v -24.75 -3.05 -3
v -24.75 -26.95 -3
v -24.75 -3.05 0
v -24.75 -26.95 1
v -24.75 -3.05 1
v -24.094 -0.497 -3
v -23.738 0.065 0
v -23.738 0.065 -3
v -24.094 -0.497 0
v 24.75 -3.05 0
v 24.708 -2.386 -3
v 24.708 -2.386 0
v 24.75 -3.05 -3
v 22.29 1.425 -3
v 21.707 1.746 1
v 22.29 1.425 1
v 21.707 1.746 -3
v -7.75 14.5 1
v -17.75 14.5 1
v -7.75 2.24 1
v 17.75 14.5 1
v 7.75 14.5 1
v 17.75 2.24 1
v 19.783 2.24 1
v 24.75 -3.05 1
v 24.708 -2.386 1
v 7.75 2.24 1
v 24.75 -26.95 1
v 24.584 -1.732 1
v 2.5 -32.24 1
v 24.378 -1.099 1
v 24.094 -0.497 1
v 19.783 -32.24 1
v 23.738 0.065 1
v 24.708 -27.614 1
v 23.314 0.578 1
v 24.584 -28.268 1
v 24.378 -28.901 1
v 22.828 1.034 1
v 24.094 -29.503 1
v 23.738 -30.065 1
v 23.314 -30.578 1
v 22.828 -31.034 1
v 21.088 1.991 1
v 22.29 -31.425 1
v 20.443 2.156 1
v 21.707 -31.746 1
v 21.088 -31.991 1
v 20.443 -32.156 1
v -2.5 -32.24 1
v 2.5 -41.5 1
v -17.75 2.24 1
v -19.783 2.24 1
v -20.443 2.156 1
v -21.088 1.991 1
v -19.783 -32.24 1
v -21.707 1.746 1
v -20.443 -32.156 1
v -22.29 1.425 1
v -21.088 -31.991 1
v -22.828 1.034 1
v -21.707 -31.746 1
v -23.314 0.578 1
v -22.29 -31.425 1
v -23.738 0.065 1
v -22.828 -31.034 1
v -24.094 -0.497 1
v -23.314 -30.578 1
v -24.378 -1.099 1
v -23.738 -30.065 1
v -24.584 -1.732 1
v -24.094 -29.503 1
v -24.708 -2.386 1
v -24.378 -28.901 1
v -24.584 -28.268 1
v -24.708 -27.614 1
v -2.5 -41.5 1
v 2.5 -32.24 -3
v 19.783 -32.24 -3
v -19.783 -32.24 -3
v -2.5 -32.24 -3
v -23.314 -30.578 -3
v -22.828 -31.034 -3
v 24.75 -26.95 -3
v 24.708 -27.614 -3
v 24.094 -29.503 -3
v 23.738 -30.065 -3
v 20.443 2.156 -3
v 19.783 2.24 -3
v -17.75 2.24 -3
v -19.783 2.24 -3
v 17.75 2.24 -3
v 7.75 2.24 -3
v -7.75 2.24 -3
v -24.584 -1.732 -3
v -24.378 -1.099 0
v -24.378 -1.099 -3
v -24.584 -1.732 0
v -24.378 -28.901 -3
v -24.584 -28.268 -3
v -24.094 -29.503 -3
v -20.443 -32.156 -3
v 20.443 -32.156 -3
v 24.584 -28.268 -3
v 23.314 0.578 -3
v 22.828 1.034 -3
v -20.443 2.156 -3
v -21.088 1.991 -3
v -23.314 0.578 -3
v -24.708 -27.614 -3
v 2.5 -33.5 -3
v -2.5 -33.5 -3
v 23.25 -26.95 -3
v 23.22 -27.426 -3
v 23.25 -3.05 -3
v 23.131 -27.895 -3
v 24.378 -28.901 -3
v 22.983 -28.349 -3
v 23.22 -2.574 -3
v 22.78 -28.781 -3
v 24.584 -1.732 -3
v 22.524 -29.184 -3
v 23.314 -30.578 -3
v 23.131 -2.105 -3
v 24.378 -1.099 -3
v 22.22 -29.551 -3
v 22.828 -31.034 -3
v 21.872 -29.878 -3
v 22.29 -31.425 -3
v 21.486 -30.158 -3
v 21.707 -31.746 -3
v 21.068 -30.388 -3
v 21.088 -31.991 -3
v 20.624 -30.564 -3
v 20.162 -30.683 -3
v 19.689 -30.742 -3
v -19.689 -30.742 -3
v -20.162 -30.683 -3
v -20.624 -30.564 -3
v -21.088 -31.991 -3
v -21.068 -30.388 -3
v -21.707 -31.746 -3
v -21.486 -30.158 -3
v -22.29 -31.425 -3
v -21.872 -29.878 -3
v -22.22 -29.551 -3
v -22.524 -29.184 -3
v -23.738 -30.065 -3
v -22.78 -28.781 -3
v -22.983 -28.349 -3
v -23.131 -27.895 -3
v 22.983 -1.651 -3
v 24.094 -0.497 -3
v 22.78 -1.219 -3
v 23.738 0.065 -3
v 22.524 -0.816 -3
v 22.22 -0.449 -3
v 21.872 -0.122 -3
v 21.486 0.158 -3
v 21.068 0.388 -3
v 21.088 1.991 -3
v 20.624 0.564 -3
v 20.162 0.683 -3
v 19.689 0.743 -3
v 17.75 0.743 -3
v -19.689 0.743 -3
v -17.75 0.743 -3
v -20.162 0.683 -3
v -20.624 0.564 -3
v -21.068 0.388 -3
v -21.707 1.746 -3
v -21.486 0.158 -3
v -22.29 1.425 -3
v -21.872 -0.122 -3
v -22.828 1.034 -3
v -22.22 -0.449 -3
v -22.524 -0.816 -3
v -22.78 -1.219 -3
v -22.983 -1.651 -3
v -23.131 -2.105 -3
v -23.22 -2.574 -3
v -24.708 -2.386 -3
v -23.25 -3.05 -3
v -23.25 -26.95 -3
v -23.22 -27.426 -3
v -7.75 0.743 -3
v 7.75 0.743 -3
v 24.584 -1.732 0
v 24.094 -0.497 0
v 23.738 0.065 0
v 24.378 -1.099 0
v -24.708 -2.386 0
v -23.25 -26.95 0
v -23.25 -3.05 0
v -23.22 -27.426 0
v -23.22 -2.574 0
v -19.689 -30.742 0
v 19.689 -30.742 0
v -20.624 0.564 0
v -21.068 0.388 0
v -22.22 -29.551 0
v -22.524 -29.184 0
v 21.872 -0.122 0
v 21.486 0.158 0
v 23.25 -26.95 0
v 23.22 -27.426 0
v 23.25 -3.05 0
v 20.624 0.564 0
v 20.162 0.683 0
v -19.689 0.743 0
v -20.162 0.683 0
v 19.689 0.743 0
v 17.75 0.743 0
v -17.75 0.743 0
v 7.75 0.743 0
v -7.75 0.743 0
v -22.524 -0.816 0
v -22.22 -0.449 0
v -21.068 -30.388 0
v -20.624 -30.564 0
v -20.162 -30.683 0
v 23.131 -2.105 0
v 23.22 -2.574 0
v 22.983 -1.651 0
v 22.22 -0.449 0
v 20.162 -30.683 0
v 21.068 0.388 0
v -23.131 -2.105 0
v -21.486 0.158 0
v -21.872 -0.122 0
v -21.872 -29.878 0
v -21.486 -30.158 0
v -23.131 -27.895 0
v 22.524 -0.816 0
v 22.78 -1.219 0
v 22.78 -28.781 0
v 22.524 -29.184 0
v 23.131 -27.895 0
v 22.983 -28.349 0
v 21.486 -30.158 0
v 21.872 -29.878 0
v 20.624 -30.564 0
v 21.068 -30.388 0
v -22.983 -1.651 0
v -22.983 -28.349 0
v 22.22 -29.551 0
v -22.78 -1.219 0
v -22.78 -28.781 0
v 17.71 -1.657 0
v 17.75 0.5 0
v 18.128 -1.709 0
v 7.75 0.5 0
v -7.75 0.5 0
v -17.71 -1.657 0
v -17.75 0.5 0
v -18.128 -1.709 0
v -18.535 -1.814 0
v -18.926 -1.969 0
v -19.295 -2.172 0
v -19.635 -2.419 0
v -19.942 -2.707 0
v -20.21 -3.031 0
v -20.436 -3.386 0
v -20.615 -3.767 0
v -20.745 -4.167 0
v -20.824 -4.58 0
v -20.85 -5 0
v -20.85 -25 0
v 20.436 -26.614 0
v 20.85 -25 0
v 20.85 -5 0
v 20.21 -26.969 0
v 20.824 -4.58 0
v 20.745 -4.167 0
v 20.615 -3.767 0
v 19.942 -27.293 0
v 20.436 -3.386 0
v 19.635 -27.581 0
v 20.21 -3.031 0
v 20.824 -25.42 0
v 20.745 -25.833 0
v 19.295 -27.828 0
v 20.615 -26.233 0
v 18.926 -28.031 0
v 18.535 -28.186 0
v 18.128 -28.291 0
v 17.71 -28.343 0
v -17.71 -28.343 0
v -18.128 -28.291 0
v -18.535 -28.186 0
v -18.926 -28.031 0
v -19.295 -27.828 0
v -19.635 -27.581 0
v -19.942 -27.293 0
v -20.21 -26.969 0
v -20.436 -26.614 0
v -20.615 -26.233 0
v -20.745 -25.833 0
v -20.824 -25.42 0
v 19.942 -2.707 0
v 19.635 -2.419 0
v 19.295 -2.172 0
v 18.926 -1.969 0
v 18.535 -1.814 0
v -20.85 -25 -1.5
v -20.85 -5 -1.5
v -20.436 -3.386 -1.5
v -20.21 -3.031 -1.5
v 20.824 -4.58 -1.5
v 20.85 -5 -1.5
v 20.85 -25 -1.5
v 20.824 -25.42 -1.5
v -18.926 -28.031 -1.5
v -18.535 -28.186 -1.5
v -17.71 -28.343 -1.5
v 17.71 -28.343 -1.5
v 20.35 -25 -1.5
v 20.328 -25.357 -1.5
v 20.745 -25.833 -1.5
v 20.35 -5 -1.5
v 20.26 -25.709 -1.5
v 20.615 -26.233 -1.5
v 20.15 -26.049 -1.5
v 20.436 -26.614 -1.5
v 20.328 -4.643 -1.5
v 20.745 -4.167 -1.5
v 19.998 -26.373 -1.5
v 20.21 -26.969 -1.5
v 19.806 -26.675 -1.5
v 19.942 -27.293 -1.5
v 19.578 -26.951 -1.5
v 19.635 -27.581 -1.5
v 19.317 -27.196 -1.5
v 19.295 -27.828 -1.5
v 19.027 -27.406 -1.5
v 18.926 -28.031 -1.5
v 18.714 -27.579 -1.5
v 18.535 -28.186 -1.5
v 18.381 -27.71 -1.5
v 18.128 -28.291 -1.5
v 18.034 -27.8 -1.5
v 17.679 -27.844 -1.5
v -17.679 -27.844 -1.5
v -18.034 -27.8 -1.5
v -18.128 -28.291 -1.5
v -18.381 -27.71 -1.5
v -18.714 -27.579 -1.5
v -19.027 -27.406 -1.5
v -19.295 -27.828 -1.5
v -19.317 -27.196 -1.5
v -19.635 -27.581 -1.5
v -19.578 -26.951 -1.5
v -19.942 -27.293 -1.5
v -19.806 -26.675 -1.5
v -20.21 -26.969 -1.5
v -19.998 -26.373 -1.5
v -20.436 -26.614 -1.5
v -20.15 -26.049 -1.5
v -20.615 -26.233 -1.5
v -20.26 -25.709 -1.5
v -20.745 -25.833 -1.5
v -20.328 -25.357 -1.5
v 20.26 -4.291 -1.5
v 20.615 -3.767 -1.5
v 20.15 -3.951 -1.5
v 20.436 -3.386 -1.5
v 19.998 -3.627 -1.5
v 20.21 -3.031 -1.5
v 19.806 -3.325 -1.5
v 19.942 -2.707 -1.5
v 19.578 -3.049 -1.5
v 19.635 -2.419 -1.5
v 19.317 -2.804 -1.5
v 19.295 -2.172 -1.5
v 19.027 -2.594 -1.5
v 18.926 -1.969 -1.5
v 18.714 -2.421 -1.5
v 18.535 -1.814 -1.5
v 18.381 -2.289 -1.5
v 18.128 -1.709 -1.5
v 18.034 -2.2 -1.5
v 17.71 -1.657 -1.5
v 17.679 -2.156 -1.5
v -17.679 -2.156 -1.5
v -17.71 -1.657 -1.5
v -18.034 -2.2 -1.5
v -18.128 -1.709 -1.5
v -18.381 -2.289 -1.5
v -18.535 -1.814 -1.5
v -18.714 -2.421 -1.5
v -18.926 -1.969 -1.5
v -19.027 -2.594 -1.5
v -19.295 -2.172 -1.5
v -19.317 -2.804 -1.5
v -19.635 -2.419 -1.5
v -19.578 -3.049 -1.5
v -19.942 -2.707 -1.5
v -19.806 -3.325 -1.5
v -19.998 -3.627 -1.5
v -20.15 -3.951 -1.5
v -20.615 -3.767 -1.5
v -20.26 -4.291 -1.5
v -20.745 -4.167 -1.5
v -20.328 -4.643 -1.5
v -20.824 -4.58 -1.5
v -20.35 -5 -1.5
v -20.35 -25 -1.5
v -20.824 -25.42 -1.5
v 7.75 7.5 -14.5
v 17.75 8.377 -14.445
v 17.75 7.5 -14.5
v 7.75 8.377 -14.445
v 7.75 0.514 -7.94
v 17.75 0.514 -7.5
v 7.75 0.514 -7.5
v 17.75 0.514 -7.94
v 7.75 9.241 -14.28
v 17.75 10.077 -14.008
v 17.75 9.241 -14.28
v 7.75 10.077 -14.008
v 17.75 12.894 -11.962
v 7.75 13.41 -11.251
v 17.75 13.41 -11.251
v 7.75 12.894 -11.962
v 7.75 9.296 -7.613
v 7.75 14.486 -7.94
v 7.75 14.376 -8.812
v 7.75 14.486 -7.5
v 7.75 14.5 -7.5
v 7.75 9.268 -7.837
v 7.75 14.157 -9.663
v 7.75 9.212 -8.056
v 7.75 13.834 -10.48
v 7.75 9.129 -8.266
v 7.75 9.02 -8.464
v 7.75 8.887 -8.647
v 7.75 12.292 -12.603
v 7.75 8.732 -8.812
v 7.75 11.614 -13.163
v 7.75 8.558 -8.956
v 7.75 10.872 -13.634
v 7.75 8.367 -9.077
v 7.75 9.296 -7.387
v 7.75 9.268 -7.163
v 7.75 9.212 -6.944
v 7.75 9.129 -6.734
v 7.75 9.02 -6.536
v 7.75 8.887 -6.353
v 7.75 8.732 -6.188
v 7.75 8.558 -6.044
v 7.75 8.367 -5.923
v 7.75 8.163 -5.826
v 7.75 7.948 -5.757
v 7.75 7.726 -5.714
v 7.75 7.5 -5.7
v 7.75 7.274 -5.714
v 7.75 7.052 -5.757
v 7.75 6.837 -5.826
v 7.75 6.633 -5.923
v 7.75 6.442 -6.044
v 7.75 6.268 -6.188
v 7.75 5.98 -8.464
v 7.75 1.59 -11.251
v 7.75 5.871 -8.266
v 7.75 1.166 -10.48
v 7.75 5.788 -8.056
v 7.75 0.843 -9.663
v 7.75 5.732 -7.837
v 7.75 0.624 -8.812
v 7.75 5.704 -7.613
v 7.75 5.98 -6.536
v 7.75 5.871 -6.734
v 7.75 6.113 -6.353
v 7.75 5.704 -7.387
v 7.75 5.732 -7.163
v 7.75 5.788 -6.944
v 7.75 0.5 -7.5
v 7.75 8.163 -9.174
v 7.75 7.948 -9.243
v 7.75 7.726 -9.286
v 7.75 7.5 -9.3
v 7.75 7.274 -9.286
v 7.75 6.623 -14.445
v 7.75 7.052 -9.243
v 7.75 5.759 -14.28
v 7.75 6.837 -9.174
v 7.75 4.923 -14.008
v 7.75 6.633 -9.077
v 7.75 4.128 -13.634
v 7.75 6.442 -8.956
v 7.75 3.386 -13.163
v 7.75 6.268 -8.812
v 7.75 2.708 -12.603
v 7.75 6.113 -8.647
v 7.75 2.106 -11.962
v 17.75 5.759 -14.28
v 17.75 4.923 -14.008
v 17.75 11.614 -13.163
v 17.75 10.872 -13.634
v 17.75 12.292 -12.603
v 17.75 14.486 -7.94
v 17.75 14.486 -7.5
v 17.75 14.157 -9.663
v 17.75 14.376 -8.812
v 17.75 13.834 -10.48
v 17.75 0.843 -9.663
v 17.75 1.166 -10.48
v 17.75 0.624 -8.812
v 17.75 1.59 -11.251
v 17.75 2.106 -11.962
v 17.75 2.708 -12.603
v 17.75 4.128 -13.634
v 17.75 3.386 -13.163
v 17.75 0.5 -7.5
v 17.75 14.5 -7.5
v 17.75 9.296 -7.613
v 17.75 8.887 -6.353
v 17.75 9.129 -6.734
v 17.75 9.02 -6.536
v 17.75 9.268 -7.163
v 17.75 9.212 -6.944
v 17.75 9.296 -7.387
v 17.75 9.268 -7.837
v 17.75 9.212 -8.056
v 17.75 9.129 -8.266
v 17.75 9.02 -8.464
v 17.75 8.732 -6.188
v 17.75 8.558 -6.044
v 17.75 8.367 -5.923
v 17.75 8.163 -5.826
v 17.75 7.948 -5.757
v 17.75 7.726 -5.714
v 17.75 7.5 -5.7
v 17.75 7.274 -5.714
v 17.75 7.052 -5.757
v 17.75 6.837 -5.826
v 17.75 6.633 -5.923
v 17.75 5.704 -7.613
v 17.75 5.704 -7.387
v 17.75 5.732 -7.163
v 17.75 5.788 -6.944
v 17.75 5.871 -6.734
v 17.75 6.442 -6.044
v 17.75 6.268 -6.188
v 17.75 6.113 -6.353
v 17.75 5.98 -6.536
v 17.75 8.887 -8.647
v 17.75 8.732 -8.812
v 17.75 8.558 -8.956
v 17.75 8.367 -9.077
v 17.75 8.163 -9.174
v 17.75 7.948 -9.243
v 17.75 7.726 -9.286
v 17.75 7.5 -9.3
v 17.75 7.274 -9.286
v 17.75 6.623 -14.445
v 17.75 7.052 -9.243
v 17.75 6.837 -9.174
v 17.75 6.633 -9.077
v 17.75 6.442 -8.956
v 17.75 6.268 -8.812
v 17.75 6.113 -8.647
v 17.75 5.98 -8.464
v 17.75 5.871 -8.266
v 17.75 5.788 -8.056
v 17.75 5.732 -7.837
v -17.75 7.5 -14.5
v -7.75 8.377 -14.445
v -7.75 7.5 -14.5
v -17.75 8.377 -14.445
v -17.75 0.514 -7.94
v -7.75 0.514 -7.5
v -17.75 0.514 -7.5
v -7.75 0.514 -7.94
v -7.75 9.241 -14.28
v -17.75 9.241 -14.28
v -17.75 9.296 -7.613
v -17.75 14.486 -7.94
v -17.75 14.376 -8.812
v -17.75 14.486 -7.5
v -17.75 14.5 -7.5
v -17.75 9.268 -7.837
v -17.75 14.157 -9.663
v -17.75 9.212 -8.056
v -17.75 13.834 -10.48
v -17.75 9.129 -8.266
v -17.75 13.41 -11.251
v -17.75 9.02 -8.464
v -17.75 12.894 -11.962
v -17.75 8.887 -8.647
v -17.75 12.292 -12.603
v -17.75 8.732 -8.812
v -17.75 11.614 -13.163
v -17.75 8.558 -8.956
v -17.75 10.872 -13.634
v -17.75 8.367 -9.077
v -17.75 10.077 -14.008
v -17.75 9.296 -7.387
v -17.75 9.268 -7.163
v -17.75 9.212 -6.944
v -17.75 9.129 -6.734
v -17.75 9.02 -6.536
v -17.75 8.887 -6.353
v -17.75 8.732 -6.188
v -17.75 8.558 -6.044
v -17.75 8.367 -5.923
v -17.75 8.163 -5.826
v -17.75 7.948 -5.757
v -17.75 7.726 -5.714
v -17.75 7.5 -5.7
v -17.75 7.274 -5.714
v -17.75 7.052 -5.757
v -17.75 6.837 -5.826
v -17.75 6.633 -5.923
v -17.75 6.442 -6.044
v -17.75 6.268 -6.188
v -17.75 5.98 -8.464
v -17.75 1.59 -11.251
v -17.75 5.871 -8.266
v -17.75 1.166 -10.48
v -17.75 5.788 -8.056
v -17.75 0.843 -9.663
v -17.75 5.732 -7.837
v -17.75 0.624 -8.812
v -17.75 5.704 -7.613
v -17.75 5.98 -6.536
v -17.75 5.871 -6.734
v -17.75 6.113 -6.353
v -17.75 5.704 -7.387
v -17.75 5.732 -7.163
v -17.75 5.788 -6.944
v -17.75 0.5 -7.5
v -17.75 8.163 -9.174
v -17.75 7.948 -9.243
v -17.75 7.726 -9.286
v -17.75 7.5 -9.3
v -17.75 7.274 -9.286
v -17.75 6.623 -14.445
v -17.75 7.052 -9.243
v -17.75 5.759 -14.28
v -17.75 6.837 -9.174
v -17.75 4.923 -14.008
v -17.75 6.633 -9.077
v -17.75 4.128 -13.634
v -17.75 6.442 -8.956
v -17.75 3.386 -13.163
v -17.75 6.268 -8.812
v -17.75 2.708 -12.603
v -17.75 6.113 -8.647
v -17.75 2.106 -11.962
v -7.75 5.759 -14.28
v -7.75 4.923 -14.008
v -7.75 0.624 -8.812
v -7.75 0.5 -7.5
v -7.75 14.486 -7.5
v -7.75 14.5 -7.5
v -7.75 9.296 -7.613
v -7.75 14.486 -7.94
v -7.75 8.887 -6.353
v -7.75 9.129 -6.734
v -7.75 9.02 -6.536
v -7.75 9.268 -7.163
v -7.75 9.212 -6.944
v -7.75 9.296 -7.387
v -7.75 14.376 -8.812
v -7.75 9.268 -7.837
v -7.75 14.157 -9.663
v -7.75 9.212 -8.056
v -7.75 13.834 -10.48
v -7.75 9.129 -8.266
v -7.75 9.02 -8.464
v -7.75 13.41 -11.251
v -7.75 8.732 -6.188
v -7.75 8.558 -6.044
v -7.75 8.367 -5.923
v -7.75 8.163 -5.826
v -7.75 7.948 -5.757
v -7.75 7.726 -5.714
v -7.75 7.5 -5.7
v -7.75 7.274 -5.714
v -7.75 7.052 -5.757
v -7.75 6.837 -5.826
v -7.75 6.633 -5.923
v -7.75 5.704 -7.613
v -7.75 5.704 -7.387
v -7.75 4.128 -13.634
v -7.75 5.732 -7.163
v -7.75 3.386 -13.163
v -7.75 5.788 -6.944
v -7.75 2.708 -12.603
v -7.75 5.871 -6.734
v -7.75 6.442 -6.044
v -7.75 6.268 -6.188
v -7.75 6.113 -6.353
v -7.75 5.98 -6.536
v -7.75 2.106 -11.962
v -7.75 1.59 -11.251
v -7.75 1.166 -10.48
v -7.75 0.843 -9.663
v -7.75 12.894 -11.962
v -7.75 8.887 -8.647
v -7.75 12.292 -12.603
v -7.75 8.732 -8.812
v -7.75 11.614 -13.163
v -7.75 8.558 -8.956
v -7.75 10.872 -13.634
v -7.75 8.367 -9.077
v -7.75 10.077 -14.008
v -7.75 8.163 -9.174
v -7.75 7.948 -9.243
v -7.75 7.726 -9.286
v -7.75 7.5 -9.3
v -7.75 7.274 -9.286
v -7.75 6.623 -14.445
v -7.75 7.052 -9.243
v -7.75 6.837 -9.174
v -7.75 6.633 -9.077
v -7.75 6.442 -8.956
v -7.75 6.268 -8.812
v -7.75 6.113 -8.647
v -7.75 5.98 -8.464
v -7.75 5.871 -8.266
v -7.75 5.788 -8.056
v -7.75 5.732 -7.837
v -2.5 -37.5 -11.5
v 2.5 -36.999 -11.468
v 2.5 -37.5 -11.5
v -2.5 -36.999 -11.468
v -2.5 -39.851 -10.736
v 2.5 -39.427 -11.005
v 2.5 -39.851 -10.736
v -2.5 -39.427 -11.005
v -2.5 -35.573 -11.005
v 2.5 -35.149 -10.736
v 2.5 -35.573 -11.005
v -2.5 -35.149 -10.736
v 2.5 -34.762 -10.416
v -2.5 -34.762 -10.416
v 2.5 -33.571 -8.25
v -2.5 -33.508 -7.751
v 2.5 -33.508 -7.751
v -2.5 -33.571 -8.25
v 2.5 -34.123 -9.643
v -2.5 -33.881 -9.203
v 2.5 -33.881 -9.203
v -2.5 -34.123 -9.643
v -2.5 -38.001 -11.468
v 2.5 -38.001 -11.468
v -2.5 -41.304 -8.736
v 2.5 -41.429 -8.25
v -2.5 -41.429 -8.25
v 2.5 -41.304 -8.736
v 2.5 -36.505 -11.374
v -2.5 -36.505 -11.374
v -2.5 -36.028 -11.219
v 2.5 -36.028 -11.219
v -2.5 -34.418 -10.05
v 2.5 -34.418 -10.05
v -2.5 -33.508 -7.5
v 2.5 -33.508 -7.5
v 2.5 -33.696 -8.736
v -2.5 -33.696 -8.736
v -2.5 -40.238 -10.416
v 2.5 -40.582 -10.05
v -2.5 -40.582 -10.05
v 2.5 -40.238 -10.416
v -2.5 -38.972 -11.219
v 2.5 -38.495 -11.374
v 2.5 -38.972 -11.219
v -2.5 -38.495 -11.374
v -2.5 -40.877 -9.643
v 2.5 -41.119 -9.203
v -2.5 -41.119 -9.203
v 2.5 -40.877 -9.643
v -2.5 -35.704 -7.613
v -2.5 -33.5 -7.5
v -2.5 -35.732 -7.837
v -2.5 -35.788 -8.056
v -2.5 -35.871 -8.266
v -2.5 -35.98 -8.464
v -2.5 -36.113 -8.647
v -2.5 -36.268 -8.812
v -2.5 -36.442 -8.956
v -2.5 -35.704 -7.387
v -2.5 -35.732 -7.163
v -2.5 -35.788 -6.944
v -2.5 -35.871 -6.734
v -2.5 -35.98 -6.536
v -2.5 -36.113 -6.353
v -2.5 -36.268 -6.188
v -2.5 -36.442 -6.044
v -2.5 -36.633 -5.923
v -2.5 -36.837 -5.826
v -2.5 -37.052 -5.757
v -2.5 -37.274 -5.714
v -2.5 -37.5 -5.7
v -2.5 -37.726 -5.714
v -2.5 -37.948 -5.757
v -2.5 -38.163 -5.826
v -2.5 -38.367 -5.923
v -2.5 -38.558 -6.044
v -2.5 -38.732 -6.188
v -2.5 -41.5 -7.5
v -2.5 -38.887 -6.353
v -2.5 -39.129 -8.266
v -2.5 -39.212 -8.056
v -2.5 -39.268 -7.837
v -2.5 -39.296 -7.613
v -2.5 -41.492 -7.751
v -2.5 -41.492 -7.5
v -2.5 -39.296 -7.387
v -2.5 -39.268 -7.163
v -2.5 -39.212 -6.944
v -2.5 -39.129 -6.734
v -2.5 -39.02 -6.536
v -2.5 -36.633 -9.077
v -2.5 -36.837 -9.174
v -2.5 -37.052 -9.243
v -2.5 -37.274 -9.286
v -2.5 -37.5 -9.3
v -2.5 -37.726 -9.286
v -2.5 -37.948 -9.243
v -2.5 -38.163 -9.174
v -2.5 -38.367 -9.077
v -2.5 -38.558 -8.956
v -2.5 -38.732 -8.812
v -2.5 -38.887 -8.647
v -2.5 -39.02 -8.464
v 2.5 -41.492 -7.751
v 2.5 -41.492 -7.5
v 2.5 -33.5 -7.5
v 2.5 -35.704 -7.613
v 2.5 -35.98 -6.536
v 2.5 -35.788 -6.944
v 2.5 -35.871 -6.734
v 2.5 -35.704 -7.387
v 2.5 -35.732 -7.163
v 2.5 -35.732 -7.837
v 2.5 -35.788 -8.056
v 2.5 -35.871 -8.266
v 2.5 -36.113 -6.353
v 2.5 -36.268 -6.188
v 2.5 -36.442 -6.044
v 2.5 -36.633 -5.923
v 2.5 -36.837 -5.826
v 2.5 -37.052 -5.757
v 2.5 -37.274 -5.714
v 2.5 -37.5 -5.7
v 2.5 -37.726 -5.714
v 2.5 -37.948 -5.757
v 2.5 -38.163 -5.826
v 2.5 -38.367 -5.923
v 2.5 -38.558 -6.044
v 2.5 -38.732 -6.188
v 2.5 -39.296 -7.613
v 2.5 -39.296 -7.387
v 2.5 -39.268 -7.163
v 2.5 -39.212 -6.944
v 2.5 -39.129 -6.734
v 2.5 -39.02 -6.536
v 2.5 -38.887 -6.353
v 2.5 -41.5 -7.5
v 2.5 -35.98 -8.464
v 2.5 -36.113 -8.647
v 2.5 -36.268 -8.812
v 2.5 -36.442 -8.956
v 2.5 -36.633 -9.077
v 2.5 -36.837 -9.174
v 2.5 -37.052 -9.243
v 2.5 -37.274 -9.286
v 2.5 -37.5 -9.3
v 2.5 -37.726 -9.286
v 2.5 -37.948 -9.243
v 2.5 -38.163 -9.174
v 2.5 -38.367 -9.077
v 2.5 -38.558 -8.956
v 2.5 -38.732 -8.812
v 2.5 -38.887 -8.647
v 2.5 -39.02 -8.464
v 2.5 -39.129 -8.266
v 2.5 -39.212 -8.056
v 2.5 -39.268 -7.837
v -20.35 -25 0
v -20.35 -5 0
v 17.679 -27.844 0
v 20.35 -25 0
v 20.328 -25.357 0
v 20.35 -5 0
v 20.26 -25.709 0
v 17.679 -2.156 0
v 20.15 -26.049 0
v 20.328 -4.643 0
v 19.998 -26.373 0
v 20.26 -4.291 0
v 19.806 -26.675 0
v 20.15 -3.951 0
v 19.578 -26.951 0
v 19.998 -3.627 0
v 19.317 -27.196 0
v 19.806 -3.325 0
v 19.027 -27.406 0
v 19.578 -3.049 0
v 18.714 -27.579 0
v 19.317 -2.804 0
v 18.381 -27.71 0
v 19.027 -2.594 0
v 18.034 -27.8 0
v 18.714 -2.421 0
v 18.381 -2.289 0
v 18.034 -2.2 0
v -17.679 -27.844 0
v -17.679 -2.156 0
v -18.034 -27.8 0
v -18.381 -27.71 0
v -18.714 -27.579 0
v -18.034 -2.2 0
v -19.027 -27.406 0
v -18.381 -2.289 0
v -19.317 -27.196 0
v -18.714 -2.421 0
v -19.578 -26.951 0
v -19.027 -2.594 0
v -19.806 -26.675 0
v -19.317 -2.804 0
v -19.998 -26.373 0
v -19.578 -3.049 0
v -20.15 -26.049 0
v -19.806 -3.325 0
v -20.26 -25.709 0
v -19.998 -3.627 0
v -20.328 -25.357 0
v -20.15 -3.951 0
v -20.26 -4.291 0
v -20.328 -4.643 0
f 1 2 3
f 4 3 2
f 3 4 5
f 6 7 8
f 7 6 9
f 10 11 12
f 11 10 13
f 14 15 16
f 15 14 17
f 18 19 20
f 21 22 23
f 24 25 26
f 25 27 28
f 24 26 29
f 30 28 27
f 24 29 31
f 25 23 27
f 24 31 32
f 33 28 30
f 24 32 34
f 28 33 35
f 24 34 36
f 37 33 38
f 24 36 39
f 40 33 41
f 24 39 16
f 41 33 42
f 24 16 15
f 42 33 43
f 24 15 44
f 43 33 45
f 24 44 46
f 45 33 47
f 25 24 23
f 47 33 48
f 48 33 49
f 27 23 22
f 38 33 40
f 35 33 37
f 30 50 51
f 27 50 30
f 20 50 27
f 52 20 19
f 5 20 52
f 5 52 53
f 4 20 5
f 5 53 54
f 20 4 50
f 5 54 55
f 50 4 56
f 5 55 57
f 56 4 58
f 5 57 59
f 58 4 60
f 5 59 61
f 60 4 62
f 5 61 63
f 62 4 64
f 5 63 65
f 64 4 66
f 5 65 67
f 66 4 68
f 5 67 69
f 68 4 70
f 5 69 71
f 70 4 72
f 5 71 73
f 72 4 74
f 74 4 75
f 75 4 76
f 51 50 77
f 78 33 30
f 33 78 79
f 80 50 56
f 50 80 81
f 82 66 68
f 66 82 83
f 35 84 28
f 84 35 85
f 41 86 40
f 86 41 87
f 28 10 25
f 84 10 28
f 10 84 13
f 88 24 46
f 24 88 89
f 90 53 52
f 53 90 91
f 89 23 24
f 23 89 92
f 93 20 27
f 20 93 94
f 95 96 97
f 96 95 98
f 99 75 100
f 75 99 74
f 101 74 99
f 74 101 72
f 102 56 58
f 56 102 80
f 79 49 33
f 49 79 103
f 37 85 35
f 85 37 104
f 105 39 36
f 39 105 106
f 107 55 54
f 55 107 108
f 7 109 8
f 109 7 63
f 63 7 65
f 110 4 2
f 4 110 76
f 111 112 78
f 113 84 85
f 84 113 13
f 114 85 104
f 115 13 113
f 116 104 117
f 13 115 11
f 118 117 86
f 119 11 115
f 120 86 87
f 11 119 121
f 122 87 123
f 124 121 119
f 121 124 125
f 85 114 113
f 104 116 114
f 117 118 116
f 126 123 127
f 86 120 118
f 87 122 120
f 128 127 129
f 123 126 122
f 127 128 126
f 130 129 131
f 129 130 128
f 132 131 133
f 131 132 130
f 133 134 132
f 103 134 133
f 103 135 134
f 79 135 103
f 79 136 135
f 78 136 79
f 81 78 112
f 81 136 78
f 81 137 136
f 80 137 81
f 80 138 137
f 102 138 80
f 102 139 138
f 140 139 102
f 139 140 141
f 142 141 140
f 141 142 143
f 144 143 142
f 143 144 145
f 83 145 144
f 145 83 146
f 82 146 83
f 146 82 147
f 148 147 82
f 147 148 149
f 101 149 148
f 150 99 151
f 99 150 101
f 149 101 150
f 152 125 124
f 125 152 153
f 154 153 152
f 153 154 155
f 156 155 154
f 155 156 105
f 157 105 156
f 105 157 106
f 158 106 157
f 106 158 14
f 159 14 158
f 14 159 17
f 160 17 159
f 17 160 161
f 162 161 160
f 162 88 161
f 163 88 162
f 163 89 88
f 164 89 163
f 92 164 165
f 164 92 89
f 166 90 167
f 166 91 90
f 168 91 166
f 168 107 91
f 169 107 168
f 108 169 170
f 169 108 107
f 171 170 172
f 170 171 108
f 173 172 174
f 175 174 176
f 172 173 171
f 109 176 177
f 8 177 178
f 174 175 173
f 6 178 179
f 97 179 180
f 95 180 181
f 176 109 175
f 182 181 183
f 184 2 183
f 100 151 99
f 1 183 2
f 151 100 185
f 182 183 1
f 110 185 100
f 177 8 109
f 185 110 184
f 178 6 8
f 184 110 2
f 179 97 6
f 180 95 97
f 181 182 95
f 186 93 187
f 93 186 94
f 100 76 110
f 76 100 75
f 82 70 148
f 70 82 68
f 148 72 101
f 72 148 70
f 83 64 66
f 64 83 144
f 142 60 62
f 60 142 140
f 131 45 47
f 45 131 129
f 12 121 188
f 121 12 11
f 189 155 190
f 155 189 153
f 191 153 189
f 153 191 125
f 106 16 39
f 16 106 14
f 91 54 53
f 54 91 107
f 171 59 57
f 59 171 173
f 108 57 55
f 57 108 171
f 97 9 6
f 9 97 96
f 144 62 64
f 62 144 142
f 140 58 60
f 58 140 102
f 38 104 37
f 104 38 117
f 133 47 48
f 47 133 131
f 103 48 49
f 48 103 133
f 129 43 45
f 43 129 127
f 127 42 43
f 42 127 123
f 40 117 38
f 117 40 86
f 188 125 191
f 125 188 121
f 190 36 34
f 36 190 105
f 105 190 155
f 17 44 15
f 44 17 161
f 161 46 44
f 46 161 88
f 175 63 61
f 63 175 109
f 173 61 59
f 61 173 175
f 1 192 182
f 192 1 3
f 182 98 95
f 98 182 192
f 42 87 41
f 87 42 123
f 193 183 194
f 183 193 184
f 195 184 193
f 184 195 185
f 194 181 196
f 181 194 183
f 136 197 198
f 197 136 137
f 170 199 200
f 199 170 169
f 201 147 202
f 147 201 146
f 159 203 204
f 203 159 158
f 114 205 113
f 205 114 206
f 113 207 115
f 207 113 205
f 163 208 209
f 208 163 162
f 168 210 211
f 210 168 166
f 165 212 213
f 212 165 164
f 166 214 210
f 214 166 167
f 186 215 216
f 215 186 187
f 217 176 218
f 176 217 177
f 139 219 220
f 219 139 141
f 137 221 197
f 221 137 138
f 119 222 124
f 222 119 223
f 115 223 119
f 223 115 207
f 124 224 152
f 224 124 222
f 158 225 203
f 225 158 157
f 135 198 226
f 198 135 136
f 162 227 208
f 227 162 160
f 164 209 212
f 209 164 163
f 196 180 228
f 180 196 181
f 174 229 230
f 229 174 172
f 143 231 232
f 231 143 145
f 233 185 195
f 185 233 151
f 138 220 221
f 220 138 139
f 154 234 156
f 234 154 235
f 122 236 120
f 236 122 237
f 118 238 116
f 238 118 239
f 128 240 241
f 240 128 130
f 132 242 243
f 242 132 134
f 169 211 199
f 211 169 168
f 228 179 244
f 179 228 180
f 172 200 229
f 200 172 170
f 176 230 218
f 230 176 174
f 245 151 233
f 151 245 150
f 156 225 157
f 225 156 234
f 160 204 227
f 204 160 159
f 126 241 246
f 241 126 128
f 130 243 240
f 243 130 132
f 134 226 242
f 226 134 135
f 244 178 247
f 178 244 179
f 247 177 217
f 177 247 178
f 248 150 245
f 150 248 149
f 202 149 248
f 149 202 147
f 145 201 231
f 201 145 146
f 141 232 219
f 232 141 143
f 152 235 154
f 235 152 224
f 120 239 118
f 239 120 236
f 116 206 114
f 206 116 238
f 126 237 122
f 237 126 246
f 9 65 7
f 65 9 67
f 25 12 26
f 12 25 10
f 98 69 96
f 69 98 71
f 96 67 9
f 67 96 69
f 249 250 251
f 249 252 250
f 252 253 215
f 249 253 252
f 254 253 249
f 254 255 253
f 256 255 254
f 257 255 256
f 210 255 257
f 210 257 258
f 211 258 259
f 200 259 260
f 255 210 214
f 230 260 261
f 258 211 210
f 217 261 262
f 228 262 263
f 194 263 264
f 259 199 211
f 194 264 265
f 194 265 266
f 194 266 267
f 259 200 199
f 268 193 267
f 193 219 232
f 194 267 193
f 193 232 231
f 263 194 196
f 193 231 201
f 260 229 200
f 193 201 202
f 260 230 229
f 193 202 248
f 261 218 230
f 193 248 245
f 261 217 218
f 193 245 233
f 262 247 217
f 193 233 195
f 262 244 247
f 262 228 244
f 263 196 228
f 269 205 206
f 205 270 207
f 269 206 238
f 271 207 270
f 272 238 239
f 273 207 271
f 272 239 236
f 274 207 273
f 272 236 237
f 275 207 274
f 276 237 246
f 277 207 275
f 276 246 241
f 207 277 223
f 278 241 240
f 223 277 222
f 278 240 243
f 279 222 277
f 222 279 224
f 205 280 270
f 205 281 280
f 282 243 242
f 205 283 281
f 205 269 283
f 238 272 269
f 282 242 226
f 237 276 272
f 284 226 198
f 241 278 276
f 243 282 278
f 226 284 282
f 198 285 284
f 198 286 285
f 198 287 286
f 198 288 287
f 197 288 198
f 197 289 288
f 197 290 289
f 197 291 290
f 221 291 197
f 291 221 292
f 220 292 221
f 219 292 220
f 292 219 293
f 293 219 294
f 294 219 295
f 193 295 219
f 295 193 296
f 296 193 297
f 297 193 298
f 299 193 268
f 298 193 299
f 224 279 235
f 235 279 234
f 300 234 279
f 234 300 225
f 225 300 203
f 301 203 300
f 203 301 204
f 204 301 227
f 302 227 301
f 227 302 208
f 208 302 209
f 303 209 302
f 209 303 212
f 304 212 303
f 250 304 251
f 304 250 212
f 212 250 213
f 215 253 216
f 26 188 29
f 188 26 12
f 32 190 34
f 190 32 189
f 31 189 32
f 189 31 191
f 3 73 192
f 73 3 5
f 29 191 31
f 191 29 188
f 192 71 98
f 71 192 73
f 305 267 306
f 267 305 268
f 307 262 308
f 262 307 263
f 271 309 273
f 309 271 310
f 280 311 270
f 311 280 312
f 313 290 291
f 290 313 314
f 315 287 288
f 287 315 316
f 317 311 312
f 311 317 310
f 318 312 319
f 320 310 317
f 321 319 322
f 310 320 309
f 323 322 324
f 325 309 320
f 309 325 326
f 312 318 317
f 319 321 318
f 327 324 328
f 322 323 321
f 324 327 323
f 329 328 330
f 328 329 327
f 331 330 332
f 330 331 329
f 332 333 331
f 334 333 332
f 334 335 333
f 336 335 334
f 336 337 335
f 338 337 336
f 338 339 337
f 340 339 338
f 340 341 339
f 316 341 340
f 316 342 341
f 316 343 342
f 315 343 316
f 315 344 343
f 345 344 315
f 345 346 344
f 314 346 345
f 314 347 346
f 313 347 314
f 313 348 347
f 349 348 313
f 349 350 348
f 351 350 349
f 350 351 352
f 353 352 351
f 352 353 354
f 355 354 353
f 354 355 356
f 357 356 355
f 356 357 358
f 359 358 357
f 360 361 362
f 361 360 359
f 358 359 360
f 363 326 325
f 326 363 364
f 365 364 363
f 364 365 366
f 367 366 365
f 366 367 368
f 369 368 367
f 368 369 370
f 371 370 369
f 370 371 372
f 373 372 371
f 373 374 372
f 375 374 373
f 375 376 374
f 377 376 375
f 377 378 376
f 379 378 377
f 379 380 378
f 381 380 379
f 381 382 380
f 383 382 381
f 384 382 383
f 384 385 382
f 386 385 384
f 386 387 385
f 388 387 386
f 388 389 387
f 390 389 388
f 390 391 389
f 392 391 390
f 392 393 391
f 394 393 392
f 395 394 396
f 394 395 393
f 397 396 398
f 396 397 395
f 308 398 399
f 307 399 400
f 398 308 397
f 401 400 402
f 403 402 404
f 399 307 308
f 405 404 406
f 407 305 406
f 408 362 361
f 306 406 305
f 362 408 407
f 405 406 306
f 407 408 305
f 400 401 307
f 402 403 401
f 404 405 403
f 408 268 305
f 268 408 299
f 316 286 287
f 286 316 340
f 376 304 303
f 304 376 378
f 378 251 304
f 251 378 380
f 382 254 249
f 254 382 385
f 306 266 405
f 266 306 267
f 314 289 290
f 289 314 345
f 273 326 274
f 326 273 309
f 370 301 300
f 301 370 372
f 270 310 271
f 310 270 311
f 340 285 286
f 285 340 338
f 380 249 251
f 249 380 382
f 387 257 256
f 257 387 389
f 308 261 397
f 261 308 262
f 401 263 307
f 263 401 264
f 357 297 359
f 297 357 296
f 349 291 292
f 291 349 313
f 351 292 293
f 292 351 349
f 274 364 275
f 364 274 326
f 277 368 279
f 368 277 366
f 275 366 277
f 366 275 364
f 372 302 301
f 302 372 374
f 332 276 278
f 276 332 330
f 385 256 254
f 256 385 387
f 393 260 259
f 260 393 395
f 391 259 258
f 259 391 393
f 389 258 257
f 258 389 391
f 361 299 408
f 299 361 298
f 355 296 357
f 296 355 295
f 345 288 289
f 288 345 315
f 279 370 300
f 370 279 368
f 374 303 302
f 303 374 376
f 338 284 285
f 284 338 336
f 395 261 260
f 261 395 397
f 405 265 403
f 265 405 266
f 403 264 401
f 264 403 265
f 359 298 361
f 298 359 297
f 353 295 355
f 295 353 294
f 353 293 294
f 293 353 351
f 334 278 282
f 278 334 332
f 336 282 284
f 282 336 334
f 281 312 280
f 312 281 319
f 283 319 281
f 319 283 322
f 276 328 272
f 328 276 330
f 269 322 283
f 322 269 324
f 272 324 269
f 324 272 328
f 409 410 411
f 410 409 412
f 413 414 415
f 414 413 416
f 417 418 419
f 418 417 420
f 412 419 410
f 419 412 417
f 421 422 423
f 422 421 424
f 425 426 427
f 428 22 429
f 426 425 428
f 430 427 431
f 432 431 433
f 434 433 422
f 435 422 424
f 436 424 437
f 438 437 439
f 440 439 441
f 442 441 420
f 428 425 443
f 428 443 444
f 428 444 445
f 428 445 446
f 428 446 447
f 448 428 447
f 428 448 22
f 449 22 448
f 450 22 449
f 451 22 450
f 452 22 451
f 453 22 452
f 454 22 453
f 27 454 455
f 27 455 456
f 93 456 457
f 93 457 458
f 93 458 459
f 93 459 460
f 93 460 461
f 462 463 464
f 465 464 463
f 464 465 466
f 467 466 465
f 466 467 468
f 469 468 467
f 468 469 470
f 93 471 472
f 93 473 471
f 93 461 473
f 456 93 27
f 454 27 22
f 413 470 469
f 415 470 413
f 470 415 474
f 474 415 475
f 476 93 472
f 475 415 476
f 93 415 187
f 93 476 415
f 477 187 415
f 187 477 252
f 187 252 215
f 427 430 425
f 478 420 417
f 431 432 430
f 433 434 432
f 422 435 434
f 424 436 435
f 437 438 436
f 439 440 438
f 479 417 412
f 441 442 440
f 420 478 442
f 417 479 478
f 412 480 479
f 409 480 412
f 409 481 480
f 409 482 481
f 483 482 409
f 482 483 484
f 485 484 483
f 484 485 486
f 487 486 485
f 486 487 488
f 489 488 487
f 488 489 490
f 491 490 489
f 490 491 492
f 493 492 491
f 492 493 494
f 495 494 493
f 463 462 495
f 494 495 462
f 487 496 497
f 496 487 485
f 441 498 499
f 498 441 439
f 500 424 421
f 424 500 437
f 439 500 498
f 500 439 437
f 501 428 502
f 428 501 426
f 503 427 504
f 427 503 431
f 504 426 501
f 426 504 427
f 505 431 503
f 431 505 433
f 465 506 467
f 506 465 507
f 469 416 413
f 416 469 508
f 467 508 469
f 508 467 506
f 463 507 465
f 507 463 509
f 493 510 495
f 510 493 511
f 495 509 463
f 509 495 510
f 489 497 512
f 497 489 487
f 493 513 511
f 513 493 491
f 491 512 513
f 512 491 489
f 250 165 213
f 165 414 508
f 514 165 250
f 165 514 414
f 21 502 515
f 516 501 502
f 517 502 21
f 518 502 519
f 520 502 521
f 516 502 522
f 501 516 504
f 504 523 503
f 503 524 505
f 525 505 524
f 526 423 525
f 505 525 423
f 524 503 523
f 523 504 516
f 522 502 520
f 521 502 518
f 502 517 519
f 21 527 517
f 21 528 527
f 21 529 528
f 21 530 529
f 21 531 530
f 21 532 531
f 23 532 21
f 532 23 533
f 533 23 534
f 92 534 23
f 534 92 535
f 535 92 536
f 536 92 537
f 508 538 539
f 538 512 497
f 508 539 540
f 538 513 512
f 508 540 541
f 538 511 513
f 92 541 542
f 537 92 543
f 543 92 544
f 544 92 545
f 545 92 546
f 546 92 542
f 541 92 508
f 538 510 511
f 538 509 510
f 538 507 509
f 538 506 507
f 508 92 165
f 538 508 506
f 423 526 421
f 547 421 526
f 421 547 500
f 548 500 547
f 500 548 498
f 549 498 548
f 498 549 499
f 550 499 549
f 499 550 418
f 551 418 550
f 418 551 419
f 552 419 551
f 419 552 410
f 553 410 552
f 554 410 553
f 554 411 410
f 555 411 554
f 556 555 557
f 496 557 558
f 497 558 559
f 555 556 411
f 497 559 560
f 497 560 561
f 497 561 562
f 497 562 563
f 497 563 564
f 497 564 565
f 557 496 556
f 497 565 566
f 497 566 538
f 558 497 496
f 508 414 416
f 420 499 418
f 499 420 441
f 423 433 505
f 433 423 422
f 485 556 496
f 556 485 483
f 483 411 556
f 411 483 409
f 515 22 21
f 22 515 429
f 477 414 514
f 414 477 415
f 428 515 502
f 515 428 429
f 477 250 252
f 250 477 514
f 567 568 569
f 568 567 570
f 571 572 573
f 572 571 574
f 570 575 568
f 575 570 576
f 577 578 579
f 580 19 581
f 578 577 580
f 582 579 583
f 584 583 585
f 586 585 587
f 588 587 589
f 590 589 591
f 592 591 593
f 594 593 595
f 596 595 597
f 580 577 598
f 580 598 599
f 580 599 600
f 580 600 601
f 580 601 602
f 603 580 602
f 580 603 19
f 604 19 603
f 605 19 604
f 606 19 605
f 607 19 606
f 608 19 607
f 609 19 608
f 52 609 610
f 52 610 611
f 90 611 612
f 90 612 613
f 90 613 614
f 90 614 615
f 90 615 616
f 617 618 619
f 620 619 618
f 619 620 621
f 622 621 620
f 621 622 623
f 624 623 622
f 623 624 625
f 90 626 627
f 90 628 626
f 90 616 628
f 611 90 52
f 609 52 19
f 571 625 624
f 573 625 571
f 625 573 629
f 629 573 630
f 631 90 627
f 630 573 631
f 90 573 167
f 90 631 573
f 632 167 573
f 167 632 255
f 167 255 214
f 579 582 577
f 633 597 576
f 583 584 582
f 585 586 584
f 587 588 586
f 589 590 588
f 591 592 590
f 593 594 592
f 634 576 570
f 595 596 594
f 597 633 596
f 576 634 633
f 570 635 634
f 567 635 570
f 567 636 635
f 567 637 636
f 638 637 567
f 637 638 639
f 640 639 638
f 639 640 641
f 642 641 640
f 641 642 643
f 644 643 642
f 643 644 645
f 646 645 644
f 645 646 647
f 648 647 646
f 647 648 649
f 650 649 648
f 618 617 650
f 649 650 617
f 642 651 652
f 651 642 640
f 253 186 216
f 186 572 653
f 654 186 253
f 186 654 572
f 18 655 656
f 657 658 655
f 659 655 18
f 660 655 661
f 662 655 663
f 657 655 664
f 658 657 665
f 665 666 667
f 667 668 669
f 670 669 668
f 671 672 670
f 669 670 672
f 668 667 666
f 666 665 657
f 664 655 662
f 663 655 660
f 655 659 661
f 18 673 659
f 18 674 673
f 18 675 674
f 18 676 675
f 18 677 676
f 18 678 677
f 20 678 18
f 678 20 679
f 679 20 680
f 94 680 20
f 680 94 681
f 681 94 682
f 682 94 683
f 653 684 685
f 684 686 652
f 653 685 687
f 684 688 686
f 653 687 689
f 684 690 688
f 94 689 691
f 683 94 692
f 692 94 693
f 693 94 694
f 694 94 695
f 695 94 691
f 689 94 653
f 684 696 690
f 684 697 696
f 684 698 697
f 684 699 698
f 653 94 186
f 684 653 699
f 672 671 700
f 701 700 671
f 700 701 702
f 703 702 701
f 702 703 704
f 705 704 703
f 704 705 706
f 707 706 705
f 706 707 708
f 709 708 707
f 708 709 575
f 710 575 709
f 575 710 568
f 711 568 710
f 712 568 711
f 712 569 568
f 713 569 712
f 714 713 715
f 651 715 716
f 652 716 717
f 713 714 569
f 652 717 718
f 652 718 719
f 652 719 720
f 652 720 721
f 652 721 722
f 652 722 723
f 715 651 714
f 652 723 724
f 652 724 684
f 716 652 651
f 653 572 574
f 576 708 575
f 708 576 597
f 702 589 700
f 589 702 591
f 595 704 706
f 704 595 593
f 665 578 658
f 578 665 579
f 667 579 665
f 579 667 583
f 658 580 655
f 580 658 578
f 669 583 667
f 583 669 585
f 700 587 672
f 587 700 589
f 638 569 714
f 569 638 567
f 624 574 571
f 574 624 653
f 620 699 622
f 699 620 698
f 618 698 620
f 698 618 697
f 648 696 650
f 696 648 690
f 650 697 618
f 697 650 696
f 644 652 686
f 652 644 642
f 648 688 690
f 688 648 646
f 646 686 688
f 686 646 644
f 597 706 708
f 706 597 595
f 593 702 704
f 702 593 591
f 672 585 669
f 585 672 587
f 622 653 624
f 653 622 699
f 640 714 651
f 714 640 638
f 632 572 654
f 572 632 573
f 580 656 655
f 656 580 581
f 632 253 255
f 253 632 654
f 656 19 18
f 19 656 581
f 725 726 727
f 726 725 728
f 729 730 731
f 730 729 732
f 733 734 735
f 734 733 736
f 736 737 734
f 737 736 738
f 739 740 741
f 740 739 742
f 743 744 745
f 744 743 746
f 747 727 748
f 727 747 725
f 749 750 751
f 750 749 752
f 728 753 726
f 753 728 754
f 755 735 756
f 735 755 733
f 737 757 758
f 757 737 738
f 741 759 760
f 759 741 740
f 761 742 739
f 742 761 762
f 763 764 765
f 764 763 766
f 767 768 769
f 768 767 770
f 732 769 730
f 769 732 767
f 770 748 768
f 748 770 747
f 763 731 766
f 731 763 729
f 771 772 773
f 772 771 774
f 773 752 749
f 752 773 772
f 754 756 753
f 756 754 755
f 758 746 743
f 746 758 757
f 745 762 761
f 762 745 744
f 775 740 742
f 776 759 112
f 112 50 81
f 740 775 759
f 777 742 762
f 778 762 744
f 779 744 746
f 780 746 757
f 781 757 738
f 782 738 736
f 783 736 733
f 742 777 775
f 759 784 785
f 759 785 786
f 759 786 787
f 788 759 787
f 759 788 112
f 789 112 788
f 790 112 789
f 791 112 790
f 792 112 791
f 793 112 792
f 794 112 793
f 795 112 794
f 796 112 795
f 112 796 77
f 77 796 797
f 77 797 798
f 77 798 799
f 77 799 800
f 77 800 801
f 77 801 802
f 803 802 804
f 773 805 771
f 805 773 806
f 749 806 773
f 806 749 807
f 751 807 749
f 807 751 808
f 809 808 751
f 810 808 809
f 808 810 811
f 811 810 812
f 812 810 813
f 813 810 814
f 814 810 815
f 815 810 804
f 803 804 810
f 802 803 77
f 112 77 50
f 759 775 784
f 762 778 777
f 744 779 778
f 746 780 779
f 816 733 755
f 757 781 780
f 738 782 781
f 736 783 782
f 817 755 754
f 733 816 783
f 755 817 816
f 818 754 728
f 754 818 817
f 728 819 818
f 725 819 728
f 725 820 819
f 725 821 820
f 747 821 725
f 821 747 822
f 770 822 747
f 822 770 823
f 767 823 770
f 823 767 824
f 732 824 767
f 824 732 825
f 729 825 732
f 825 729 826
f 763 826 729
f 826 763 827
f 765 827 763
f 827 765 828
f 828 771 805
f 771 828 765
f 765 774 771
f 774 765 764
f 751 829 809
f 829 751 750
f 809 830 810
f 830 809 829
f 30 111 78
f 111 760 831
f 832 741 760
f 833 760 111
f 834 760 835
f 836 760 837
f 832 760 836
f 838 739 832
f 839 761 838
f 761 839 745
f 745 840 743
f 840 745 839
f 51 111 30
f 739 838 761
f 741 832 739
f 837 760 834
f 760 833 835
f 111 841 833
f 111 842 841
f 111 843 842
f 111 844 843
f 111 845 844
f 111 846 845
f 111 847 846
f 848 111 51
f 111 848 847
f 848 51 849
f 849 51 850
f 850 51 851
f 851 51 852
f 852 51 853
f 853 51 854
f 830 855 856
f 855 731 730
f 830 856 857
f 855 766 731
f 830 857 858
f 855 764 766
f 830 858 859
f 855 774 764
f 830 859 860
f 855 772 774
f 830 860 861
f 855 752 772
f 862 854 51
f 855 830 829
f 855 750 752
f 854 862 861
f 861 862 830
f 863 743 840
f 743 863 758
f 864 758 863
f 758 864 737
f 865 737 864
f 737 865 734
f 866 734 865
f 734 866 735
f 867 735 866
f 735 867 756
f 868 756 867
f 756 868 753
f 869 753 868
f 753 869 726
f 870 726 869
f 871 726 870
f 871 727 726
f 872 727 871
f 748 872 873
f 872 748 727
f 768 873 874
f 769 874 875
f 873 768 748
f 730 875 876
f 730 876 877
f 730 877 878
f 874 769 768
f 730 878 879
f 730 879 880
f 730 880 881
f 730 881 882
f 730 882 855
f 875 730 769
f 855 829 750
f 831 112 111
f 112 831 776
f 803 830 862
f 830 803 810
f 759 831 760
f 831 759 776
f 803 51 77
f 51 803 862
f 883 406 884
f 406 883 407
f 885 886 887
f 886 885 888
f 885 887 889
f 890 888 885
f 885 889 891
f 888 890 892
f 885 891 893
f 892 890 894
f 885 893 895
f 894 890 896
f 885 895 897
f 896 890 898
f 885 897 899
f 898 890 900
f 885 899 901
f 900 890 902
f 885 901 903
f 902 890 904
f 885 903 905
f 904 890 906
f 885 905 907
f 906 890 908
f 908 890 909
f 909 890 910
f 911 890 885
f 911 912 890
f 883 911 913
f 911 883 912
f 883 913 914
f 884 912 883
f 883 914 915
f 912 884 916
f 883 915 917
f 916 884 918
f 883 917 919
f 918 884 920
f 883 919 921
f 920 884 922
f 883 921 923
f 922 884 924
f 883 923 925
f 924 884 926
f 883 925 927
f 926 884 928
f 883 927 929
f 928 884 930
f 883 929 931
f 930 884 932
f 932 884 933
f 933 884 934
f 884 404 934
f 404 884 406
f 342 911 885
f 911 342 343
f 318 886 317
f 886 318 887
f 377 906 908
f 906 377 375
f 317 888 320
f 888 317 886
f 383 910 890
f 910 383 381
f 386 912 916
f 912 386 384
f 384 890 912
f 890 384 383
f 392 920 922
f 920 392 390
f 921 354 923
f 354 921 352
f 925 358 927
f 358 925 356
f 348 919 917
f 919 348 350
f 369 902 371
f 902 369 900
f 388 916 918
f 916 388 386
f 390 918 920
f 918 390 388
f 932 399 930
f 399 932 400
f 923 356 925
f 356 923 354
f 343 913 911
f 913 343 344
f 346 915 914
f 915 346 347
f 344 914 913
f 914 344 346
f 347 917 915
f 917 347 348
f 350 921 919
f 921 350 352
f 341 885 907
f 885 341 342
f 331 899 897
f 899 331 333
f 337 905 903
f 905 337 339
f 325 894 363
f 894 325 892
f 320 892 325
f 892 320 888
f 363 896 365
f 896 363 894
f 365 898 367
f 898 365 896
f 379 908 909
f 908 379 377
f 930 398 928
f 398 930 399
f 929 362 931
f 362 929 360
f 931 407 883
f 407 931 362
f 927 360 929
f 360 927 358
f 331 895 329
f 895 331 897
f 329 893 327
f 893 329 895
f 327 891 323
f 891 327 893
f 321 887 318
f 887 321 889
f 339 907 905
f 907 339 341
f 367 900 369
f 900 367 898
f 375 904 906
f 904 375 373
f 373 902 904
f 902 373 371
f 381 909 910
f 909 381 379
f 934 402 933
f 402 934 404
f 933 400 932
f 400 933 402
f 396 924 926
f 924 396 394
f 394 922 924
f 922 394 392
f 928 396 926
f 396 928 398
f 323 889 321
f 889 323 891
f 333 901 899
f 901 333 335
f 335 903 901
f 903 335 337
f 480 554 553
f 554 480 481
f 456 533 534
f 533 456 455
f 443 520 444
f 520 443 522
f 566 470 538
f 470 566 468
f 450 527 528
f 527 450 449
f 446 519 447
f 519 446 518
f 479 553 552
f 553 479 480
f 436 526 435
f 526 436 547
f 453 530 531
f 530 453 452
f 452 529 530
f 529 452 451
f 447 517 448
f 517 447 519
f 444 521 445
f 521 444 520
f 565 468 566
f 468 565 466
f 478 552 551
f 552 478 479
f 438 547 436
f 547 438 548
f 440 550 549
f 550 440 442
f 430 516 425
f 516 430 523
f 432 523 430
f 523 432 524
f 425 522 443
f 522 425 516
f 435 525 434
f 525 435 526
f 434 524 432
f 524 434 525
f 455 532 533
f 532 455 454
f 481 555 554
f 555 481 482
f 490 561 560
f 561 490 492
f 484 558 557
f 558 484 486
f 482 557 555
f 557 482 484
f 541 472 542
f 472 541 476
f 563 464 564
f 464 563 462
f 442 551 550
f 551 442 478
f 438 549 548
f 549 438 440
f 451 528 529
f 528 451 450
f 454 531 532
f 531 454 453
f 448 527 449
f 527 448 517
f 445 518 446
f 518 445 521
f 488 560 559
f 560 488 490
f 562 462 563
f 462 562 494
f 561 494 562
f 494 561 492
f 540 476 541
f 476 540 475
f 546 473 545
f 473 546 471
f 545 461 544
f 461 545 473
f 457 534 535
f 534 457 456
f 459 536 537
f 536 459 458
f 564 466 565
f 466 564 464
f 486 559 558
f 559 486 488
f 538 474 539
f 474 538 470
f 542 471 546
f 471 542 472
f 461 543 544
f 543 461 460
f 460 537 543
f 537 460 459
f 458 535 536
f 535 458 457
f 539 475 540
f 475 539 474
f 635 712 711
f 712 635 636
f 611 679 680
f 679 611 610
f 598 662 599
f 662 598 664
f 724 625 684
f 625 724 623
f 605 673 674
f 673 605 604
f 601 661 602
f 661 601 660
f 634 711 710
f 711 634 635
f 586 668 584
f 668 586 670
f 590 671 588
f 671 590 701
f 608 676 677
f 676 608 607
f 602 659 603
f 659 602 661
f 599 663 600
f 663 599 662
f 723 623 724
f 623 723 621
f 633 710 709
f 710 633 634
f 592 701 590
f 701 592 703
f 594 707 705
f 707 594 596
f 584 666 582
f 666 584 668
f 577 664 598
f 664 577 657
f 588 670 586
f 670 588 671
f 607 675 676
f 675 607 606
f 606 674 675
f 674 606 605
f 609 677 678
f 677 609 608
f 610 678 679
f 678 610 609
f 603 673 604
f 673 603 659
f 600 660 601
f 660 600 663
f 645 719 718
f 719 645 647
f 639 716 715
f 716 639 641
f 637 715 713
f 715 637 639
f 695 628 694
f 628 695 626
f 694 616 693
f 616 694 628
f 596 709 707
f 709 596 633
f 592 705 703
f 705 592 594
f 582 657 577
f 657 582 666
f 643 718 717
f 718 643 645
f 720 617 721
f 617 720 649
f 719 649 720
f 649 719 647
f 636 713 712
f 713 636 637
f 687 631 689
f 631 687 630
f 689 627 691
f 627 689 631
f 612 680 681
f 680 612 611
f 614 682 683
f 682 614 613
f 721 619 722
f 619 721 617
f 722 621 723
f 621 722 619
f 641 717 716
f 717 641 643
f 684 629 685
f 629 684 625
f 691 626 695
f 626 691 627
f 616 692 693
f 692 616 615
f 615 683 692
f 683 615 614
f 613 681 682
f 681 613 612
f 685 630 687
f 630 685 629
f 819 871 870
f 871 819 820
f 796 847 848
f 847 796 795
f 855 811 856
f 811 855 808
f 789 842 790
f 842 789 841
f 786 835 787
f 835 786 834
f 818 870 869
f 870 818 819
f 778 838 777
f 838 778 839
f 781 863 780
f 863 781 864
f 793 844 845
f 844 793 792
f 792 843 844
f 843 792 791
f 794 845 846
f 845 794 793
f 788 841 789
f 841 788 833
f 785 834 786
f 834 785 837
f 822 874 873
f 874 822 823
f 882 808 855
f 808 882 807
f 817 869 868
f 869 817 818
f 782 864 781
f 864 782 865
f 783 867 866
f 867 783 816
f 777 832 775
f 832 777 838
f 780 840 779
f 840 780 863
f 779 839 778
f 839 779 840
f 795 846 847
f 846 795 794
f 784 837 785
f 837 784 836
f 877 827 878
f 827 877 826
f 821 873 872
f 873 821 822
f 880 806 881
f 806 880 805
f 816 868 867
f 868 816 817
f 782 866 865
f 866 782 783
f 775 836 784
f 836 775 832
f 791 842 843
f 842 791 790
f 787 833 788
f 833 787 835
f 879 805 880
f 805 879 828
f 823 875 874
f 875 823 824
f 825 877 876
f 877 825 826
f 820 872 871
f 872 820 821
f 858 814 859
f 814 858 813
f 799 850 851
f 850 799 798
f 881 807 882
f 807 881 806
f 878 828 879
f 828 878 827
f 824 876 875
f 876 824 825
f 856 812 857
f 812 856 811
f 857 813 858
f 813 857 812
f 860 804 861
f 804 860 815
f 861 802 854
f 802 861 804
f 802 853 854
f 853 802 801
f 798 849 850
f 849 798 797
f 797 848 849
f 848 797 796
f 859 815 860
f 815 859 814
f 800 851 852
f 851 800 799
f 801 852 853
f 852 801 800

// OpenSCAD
$fn = 50;


difference() {
	union() {
		translate(v = [0, -15.0000000000, -3]) {
			rotate(a = [0, 0, 0]) {
				difference() {
					union() {
						hull() {
							translate(v = [-19.4500000000, 11.9500000000, 0]) {
								cylinder(h = 4, r = 5.3000000000);
							}
							translate(v = [19.4500000000, 11.9500000000, 0]) {
								cylinder(h = 4, r = 5.3000000000);
							}
							translate(v = [-19.4500000000, -11.9500000000, 0]) {
								cylinder(h = 4, r = 5.3000000000);
							}
							translate(v = [19.4500000000, -11.9500000000, 0]) {
								cylinder(h = 4, r = 5.3000000000);
							}
						}
					}
					union() {
						hull() {
							translate(v = [-19.4500000000, 11.9500000000, 0]) {
								cylinder(h = 4, r = 3.8000000000);
							}
							translate(v = [19.4500000000, 11.9500000000, 0]) {
								cylinder(h = 4, r = 3.8000000000);
							}
							translate(v = [-19.4500000000, -11.9500000000, 0]) {
								cylinder(h = 4, r = 3.8000000000);
							}
							translate(v = [19.4500000000, -11.9500000000, 0]) {
								cylinder(h = 4, r = 3.8000000000);
							}
						}
					}
				}
			}
		}
		translate(v = [0, -15.0000000000, 0]) {
			hull() {
				translate(v = [-19.4500000000, 11.9500000000, 0]) {
					cylinder(h = 1, r = 5.3000000000);
				}
				translate(v = [19.4500000000, 11.9500000000, 0]) {
					cylinder(h = 1, r = 5.3000000000);
				}
				translate(v = [-19.4500000000, -11.9500000000, 0]) {
					cylinder(h = 1, r = 5.3000000000);
				}
				translate(v = [19.4500000000, -11.9500000000, 0]) {
					cylinder(h = 1, r = 5.3000000000);
				}
			}
		}
		translate(v = [0.0000000000, -15.0000000000, -1.5000000000]) {
			hull() {
				translate(v = [-17.5000000000, 10.0000000000, 0]) {
					cylinder(h = 1.5000000000, r = 3.3500000000);
				}
				translate(v = [17.5000000000, 10.0000000000, 0]) {
					cylinder(h = 1.5000000000, r = 3.3500000000);
				}
				translate(v = [-17.5000000000, -10.0000000000, 0]) {
					cylinder(h = 1.5000000000, r = 3.3500000000);
				}
				translate(v = [17.5000000000, -10.0000000000, 0]) {
					cylinder(h = 1.5000000000, r = 3.3500000000);
				}
			}
		}
		translate(v = [7.7500000000, 7.5000000000, -7.5000000000]) {
			rotate(a = [0, 90, 0]) {
				cylinder(h = 10, r = 7.0000000000);
			}
		}
		translate(v = [7.7500000000, 0.5000000000, -7.5000000000]) {
			cube(size = [10, 14, 7.5000000000]);
		}
		translate(v = [7.7500000000, -15.0000000000, 0.0000000000]) {
			cube(size = [10, 29.5000000000, 1]);
		}
		translate(v = [-17.7500000000, 7.5000000000, -7.5000000000]) {
			rotate(a = [0, 90, 0]) {
				cylinder(h = 10, r = 7.0000000000);
			}
		}
		translate(v = [-17.7500000000, 0.5000000000, -7.5000000000]) {
			cube(size = [10, 14, 7.5000000000]);
		}
		translate(v = [-17.7500000000, -15.0000000000, 0.0000000000]) {
			cube(size = [10, 29.5000000000, 1]);
		}
		translate(v = [-2.5000000000, -37.5000000000, -7.5000000000]) {
			rotate(a = [0, 90, 0]) {
				cylinder(h = 5, r = 4.0000000000);
			}
		}
		translate(v = [-2.5000000000, -41.5000000000, -7.5000000000]) {
			cube(size = [5, 8, 7.5000000000]);
		}
		translate(v = [-2.5000000000, -41.5000000000, -3.0000000000]) {
			cube(size = [5, 10.2500000000, 4]);
		}
	}
	union() {
		translate(v = [0.0000000000, -15.0000000000, -1.5000000000]) {
			hull() {
				translate(v = [-17.5000000000, 10.0000000000, 0]) {
					cylinder(h = 1.5000000000, r = 2.8500000000);
				}
				translate(v = [17.5000000000, 10.0000000000, 0]) {
					cylinder(h = 1.5000000000, r = 2.8500000000);
				}
				translate(v = [-17.5000000000, -10.0000000000, 0]) {
					cylinder(h = 1.5000000000, r = 2.8500000000);
				}
				translate(v = [17.5000000000, -10.0000000000, 0]) {
					cylinder(h = 1.5000000000, r = 2.8500000000);
				}
			}
		}
		translate(v = [7.7500000000, 7.5000000000, -7.5000000000]) {
			rotate(a = [0, 90, 0]) {
				cylinder(h = 10, r = 1.8000000000);
			}
		}
		translate(v = [-17.7500000000, 7.5000000000, -7.5000000000]) {
			rotate(a = [0, 90, 0]) {
				cylinder(h = 10, r = 1.8000000000);
			}
		}
		translate(v = [-5.0000000000, -37.5000000000, -7.5000000000]) {
			rotate(a = [0, 90, 0]) {
				cylinder(h = 10, r = 1.8000000000);
			}
		}
	}
}
